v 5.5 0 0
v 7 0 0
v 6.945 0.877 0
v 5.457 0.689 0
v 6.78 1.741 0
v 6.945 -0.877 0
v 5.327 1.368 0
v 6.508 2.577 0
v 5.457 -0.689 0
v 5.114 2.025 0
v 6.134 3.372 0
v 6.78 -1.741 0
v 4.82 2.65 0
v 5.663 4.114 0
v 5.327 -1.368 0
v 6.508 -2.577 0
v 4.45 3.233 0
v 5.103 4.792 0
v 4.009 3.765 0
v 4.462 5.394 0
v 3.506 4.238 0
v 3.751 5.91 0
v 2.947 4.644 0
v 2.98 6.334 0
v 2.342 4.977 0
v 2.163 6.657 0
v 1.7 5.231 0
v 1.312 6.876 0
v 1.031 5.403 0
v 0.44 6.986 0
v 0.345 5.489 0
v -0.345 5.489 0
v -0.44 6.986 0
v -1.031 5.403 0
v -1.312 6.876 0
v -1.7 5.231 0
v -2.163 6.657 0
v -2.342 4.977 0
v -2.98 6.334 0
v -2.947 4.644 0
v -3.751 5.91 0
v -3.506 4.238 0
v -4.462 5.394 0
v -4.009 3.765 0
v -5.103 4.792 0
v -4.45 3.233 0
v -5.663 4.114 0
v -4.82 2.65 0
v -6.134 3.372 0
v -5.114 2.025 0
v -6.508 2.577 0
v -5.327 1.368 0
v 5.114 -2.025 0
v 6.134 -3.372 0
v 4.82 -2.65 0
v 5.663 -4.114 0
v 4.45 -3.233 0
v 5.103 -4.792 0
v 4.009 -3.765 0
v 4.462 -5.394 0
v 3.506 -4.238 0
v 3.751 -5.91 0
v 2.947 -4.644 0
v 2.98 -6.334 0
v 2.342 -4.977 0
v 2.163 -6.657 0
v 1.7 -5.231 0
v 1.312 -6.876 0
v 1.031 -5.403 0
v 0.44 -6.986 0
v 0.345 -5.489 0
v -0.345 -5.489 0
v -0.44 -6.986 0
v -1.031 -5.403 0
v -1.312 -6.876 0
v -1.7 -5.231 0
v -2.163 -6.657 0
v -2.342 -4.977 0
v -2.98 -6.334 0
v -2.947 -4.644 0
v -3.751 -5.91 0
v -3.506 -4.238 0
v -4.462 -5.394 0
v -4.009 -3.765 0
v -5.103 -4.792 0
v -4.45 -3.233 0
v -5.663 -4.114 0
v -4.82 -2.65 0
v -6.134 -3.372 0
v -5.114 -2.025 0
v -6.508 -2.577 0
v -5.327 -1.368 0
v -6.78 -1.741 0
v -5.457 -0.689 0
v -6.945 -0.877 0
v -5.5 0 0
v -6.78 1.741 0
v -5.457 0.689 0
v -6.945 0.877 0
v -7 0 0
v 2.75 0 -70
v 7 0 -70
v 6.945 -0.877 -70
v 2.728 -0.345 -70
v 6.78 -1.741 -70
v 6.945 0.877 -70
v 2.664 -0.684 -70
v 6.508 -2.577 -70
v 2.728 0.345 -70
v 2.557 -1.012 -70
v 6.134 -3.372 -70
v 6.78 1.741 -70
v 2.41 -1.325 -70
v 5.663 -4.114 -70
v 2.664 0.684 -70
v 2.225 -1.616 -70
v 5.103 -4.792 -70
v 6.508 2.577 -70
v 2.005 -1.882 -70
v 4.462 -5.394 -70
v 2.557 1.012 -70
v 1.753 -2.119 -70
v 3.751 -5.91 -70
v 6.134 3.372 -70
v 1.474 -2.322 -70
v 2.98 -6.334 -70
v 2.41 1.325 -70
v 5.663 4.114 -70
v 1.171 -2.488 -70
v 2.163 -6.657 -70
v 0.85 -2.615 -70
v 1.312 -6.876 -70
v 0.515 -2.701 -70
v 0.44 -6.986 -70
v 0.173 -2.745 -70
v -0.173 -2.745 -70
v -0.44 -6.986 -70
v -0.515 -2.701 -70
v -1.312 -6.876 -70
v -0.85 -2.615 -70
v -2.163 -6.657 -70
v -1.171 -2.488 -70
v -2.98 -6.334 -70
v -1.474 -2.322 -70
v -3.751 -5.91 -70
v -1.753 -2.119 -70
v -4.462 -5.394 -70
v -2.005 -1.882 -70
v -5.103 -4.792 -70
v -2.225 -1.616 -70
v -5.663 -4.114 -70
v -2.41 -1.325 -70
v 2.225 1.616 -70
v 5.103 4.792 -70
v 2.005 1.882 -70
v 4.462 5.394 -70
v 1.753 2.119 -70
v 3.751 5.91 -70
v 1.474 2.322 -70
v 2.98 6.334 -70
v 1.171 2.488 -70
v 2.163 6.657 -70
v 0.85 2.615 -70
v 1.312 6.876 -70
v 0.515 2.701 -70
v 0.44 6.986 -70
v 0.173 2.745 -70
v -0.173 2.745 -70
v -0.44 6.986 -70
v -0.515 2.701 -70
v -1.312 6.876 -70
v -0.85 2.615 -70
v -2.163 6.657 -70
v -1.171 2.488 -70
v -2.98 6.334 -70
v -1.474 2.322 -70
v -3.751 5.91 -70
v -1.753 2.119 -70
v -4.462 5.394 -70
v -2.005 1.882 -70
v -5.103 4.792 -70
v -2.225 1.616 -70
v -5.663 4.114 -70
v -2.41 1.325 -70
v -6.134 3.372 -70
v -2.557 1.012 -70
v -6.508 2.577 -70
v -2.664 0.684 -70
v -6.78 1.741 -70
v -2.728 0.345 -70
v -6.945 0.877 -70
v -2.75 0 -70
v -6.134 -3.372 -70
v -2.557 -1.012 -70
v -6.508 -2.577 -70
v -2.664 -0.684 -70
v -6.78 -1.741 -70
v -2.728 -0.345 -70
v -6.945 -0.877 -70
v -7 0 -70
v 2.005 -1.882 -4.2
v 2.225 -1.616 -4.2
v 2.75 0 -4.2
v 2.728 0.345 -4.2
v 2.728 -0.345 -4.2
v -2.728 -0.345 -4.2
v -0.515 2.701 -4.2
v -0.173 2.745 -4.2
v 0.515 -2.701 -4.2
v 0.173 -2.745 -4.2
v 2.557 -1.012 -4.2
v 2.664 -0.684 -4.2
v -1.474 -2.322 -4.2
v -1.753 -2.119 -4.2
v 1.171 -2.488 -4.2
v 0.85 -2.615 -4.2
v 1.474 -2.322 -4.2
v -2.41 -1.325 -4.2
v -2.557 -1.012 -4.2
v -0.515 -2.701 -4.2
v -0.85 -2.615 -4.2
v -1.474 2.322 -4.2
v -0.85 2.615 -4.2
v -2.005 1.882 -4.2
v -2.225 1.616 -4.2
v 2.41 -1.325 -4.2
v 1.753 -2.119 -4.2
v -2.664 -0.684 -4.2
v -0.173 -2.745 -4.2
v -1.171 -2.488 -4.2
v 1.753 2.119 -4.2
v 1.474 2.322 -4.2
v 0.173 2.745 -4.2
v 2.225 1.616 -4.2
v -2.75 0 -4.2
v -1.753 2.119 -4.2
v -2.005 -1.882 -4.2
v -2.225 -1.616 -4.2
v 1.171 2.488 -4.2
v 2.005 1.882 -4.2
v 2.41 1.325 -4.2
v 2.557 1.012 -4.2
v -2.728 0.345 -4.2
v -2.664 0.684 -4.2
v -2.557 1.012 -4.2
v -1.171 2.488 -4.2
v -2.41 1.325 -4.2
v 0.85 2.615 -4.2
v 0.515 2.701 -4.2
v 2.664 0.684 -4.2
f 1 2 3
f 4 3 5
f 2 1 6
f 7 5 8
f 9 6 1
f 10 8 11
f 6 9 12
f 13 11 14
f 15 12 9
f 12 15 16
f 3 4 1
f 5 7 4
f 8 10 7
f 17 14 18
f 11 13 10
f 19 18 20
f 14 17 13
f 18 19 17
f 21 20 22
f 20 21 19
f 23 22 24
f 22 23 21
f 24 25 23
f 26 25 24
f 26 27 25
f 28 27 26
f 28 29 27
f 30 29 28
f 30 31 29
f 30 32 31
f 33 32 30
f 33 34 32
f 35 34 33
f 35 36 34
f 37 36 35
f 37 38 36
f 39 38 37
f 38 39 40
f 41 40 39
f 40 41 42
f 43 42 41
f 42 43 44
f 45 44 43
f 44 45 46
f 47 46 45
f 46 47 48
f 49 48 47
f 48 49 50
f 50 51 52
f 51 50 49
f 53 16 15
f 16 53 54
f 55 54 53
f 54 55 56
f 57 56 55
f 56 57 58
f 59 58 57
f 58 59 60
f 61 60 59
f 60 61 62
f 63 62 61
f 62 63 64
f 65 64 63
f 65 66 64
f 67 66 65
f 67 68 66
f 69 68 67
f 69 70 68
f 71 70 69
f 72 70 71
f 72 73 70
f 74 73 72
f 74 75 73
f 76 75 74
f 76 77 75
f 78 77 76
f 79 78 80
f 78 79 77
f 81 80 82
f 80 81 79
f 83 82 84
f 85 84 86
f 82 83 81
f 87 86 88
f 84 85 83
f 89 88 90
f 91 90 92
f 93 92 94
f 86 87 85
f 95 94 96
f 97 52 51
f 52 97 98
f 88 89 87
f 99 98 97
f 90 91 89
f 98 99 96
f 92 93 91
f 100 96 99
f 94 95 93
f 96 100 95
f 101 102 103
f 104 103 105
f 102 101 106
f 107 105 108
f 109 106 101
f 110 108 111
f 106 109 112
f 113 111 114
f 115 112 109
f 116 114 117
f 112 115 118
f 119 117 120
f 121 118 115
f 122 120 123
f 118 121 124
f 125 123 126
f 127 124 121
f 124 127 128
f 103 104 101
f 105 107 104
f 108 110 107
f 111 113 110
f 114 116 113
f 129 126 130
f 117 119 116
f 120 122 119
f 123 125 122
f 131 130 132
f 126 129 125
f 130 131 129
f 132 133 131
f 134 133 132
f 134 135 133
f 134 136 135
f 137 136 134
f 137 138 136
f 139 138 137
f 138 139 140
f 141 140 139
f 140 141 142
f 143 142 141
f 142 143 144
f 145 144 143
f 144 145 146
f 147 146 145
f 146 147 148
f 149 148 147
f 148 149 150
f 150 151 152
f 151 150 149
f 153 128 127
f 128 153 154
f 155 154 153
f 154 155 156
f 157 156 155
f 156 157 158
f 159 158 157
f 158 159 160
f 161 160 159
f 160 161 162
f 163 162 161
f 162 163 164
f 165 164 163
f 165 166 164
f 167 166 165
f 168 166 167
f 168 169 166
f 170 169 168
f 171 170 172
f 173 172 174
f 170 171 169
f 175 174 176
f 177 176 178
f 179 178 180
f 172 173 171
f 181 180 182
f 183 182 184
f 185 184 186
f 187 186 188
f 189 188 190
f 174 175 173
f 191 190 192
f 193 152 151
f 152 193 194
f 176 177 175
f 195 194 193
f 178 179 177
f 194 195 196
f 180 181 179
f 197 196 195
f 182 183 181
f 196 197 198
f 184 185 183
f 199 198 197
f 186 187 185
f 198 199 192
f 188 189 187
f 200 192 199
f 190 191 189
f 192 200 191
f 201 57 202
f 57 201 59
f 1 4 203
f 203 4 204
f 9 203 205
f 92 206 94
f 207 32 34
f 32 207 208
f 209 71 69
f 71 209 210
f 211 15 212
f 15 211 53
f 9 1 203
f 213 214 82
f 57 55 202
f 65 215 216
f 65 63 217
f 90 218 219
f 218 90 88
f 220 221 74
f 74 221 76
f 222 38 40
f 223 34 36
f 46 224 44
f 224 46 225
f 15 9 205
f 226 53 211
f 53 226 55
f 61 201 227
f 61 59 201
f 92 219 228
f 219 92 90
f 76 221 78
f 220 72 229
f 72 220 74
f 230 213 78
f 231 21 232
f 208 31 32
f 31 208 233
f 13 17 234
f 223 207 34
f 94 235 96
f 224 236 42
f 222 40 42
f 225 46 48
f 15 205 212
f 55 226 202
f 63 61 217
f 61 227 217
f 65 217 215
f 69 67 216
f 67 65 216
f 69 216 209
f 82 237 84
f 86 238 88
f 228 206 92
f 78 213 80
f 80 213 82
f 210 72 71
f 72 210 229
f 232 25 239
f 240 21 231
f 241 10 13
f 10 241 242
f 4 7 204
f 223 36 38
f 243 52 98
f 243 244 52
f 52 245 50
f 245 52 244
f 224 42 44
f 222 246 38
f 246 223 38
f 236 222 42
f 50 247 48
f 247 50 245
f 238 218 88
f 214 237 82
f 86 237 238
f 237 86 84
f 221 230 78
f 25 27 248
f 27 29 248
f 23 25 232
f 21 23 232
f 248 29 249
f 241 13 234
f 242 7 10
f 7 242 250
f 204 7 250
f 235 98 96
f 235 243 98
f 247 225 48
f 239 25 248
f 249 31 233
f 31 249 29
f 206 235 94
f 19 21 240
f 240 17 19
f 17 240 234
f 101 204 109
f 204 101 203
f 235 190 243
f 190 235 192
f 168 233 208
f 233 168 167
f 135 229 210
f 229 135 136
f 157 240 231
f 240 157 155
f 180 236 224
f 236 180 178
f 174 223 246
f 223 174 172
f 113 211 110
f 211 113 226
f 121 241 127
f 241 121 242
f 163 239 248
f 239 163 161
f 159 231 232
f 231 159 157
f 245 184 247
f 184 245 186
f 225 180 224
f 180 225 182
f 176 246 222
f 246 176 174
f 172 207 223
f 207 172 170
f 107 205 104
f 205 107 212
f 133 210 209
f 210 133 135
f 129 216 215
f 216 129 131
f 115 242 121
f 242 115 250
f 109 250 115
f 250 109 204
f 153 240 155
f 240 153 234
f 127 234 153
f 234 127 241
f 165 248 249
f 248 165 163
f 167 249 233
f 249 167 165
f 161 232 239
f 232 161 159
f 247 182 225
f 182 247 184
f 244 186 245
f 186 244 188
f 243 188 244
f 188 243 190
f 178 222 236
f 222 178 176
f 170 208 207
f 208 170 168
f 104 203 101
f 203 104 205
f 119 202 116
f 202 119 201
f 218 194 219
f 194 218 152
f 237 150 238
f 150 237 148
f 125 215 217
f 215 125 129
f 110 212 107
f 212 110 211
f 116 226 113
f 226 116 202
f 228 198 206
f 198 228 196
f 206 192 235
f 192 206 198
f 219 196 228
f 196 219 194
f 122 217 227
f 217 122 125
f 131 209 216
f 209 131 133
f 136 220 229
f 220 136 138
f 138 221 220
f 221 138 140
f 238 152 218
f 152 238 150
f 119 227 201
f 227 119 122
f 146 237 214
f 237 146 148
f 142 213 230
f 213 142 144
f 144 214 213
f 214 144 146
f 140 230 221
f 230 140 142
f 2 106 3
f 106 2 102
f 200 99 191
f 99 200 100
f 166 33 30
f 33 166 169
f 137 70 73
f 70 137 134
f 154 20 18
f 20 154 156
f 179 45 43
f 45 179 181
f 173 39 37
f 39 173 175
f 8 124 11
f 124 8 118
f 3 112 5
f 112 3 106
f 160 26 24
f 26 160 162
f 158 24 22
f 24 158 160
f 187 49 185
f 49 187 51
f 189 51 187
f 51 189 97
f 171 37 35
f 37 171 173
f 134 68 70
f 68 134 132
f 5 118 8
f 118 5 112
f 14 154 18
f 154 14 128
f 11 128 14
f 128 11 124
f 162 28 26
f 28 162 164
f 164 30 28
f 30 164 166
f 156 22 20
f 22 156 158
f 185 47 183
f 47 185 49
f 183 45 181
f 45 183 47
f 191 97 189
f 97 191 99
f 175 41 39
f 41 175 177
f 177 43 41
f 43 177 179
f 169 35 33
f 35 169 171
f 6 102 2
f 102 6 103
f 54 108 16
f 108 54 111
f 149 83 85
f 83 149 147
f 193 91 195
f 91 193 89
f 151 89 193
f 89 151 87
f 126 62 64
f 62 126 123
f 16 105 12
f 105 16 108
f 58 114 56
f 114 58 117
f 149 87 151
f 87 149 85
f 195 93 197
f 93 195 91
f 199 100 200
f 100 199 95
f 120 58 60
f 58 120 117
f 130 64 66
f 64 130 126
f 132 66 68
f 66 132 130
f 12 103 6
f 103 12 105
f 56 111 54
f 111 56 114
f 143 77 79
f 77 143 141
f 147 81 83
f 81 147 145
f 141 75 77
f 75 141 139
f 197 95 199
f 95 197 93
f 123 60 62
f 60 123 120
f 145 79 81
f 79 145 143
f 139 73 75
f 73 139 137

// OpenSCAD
$fn = 50;


difference() {
	union() {
		translate(v = [0, 0, -70.0000000000]) {
			cylinder(h = 70, r = 7.0000000000);
		}
		cylinder(h = 0, r = 13.0000000000);
	}
	union() {
		translate(v = [0, 0, 0]) {
			rotate(a = [0, 0, 0]) {
				difference() {
					union() {
						#translate(v = [0, 0, -70.0000000000]) {
							cylinder(h = 70, r = 2.2500000000);
						}
						#translate(v = [0, 0, -4.2000000000]) {
							cylinder(h = 4.2000000000, r = 7.0000000000, r1 = 2.7500000000, r2 = 5.5000000000);
						}
						#translate(v = [0, 0, -70.0000000000]) {
							cylinder(h = 70, r = 2.7500000000);
						}
						#translate(v = [0, 0, -70.0000000000]) {
							cylinder(h = 70, r = 2.2500000000);
						}
					}
					union();
				}
			}
		}
	}
}
